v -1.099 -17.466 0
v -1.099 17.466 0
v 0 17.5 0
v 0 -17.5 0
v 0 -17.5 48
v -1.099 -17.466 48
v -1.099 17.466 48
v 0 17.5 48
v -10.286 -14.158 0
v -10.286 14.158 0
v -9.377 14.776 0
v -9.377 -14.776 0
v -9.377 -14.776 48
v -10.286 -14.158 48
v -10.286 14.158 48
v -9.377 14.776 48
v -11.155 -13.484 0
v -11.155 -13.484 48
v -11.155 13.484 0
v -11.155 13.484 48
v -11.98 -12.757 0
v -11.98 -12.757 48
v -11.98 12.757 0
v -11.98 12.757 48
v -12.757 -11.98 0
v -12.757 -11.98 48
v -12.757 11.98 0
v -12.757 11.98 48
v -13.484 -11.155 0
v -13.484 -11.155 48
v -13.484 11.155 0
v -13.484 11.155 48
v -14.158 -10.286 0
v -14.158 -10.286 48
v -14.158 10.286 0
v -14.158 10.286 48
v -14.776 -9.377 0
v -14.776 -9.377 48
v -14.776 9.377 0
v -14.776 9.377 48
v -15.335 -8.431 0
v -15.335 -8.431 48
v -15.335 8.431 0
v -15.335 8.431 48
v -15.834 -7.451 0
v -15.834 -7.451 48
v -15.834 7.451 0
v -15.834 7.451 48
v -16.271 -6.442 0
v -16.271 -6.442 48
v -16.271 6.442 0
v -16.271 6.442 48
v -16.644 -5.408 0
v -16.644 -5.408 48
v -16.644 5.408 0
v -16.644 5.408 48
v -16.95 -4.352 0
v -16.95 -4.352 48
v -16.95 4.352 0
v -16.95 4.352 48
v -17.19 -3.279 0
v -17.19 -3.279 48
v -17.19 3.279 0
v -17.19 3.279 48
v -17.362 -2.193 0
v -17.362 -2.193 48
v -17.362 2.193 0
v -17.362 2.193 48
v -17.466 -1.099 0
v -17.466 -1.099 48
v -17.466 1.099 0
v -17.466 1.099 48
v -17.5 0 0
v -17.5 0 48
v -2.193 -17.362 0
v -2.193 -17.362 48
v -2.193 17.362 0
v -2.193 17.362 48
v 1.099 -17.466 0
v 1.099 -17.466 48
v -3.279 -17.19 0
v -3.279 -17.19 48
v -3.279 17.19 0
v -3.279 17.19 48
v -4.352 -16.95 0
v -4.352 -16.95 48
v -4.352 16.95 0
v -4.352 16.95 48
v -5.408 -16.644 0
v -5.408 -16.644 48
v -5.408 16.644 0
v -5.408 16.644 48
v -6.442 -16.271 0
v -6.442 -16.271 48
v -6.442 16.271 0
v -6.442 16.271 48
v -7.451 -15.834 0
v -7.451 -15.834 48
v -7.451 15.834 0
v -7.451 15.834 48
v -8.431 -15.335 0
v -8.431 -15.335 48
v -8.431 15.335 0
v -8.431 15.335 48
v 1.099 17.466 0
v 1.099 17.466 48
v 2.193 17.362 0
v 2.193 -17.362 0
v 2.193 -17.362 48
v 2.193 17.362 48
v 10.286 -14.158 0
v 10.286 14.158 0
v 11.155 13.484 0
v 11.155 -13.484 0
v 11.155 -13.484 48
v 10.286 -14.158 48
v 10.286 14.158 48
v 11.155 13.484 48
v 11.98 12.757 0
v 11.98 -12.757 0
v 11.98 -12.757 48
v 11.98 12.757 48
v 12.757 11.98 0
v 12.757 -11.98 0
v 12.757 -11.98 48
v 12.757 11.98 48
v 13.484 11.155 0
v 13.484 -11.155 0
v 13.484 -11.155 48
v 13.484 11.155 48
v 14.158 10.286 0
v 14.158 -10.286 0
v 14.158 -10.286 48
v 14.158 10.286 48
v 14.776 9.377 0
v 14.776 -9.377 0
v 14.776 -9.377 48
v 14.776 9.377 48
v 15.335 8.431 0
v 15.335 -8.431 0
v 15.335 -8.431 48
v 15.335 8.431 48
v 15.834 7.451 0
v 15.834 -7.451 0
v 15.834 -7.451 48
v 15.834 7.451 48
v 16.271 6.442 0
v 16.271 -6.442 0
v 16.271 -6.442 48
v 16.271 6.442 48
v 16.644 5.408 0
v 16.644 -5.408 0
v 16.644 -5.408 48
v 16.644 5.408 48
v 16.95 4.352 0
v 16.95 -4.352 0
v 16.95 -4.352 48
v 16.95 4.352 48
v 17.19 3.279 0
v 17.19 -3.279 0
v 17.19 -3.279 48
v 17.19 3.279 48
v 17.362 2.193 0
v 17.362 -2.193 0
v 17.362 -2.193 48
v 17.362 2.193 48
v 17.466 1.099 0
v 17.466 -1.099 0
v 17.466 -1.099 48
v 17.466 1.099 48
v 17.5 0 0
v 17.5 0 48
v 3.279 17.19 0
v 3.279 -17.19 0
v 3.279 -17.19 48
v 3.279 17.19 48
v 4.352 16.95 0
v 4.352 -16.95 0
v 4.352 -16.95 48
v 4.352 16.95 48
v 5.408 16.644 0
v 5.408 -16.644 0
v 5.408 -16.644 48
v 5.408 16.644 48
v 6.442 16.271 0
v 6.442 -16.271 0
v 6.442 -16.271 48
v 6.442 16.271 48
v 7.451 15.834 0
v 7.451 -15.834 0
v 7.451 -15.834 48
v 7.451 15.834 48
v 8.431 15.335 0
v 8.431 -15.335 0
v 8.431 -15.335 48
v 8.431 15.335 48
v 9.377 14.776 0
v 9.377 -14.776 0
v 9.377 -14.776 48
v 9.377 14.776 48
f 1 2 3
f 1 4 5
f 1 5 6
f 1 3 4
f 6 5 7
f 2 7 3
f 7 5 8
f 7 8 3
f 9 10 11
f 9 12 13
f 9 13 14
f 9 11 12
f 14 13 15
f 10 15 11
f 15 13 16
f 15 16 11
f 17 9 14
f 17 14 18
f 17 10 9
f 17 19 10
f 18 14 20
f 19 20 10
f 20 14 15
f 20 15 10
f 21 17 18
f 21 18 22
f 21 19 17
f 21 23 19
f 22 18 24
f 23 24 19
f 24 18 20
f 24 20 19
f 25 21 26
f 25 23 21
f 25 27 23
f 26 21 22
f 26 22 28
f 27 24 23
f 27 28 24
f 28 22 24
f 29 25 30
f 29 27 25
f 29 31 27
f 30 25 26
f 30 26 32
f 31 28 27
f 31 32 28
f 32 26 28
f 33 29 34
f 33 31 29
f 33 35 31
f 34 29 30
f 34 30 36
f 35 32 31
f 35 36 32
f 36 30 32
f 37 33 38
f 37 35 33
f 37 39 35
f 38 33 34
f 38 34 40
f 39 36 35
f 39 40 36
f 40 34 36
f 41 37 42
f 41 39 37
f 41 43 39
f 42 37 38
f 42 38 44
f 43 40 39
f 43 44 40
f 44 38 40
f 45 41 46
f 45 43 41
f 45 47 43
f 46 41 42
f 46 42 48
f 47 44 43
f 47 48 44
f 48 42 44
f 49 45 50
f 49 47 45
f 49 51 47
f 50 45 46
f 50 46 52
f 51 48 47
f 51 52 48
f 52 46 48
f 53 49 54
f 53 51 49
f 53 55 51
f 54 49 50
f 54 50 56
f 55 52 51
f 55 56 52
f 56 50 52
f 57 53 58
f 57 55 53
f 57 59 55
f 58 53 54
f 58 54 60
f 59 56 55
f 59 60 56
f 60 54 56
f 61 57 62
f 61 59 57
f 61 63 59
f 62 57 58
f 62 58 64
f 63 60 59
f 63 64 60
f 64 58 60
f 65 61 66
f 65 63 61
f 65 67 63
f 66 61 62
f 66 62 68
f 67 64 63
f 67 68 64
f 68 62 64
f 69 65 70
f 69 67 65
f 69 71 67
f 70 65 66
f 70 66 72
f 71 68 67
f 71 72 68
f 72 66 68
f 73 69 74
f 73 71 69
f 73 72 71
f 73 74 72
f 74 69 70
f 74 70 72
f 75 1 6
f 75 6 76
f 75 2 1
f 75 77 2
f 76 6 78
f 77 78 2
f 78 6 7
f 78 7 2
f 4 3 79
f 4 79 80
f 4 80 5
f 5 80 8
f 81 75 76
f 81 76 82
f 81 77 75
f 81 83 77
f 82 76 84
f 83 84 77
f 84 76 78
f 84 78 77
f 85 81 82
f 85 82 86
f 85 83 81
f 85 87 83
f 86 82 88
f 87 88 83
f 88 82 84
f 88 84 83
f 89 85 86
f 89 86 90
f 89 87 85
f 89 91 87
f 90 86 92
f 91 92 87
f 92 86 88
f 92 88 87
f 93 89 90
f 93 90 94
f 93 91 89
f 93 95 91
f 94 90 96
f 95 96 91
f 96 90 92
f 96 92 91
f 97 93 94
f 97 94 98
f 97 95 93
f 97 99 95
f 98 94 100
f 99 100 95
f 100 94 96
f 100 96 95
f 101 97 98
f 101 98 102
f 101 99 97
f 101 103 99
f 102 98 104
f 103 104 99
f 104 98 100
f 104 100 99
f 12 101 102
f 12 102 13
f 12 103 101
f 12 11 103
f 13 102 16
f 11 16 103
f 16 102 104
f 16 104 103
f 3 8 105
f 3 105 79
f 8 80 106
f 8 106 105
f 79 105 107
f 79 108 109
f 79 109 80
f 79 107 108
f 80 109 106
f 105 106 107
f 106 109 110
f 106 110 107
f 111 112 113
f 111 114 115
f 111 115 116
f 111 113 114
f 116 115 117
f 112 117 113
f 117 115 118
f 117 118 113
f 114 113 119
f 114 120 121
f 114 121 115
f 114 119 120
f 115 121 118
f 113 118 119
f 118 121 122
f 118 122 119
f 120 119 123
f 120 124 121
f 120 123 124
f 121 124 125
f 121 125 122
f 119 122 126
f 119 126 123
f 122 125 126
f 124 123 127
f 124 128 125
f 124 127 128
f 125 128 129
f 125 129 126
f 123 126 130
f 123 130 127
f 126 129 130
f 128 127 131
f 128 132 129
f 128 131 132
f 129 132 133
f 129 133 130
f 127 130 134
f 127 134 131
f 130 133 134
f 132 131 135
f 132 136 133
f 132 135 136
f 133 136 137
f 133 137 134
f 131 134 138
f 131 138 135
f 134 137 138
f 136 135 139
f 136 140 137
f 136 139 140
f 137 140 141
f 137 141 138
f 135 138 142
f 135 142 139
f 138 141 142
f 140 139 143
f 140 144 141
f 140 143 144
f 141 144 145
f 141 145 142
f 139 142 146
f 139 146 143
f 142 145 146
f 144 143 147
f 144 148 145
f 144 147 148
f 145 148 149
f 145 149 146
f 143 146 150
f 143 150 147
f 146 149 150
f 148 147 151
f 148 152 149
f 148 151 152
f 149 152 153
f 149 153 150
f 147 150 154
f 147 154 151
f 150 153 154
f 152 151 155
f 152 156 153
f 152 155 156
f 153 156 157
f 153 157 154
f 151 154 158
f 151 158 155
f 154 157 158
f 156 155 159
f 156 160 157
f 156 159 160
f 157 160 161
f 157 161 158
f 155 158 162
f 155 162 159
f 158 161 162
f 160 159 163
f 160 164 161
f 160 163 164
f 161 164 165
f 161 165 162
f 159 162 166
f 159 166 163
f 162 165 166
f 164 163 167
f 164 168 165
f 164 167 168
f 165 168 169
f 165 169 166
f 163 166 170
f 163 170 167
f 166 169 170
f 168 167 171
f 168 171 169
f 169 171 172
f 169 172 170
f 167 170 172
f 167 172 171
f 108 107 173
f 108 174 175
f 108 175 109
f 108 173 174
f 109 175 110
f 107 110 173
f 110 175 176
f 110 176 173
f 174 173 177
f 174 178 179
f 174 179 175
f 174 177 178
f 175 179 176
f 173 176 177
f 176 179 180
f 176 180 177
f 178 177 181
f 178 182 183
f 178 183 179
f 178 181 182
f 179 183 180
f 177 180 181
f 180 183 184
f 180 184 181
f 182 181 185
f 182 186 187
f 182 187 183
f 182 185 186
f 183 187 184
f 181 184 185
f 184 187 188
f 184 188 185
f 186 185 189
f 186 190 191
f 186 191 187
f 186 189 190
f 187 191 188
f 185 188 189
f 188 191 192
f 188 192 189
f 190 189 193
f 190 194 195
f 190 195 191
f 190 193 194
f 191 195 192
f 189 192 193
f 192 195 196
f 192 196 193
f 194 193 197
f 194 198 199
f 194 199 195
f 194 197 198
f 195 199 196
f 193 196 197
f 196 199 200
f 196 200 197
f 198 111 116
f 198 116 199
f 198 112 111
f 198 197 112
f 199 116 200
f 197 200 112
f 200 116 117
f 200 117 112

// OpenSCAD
			       //improving rendering speed.
draft = true;   // sets rendering quality to draft.
$fs = draft ? 5 : 0.5;
$fa = 10;


module prerotator_imitation(draft){

cylinder(h = 48, r = 35/2, $fn = 100);

}




prerotator_imitation(draft);

include <../parameters.scad>
